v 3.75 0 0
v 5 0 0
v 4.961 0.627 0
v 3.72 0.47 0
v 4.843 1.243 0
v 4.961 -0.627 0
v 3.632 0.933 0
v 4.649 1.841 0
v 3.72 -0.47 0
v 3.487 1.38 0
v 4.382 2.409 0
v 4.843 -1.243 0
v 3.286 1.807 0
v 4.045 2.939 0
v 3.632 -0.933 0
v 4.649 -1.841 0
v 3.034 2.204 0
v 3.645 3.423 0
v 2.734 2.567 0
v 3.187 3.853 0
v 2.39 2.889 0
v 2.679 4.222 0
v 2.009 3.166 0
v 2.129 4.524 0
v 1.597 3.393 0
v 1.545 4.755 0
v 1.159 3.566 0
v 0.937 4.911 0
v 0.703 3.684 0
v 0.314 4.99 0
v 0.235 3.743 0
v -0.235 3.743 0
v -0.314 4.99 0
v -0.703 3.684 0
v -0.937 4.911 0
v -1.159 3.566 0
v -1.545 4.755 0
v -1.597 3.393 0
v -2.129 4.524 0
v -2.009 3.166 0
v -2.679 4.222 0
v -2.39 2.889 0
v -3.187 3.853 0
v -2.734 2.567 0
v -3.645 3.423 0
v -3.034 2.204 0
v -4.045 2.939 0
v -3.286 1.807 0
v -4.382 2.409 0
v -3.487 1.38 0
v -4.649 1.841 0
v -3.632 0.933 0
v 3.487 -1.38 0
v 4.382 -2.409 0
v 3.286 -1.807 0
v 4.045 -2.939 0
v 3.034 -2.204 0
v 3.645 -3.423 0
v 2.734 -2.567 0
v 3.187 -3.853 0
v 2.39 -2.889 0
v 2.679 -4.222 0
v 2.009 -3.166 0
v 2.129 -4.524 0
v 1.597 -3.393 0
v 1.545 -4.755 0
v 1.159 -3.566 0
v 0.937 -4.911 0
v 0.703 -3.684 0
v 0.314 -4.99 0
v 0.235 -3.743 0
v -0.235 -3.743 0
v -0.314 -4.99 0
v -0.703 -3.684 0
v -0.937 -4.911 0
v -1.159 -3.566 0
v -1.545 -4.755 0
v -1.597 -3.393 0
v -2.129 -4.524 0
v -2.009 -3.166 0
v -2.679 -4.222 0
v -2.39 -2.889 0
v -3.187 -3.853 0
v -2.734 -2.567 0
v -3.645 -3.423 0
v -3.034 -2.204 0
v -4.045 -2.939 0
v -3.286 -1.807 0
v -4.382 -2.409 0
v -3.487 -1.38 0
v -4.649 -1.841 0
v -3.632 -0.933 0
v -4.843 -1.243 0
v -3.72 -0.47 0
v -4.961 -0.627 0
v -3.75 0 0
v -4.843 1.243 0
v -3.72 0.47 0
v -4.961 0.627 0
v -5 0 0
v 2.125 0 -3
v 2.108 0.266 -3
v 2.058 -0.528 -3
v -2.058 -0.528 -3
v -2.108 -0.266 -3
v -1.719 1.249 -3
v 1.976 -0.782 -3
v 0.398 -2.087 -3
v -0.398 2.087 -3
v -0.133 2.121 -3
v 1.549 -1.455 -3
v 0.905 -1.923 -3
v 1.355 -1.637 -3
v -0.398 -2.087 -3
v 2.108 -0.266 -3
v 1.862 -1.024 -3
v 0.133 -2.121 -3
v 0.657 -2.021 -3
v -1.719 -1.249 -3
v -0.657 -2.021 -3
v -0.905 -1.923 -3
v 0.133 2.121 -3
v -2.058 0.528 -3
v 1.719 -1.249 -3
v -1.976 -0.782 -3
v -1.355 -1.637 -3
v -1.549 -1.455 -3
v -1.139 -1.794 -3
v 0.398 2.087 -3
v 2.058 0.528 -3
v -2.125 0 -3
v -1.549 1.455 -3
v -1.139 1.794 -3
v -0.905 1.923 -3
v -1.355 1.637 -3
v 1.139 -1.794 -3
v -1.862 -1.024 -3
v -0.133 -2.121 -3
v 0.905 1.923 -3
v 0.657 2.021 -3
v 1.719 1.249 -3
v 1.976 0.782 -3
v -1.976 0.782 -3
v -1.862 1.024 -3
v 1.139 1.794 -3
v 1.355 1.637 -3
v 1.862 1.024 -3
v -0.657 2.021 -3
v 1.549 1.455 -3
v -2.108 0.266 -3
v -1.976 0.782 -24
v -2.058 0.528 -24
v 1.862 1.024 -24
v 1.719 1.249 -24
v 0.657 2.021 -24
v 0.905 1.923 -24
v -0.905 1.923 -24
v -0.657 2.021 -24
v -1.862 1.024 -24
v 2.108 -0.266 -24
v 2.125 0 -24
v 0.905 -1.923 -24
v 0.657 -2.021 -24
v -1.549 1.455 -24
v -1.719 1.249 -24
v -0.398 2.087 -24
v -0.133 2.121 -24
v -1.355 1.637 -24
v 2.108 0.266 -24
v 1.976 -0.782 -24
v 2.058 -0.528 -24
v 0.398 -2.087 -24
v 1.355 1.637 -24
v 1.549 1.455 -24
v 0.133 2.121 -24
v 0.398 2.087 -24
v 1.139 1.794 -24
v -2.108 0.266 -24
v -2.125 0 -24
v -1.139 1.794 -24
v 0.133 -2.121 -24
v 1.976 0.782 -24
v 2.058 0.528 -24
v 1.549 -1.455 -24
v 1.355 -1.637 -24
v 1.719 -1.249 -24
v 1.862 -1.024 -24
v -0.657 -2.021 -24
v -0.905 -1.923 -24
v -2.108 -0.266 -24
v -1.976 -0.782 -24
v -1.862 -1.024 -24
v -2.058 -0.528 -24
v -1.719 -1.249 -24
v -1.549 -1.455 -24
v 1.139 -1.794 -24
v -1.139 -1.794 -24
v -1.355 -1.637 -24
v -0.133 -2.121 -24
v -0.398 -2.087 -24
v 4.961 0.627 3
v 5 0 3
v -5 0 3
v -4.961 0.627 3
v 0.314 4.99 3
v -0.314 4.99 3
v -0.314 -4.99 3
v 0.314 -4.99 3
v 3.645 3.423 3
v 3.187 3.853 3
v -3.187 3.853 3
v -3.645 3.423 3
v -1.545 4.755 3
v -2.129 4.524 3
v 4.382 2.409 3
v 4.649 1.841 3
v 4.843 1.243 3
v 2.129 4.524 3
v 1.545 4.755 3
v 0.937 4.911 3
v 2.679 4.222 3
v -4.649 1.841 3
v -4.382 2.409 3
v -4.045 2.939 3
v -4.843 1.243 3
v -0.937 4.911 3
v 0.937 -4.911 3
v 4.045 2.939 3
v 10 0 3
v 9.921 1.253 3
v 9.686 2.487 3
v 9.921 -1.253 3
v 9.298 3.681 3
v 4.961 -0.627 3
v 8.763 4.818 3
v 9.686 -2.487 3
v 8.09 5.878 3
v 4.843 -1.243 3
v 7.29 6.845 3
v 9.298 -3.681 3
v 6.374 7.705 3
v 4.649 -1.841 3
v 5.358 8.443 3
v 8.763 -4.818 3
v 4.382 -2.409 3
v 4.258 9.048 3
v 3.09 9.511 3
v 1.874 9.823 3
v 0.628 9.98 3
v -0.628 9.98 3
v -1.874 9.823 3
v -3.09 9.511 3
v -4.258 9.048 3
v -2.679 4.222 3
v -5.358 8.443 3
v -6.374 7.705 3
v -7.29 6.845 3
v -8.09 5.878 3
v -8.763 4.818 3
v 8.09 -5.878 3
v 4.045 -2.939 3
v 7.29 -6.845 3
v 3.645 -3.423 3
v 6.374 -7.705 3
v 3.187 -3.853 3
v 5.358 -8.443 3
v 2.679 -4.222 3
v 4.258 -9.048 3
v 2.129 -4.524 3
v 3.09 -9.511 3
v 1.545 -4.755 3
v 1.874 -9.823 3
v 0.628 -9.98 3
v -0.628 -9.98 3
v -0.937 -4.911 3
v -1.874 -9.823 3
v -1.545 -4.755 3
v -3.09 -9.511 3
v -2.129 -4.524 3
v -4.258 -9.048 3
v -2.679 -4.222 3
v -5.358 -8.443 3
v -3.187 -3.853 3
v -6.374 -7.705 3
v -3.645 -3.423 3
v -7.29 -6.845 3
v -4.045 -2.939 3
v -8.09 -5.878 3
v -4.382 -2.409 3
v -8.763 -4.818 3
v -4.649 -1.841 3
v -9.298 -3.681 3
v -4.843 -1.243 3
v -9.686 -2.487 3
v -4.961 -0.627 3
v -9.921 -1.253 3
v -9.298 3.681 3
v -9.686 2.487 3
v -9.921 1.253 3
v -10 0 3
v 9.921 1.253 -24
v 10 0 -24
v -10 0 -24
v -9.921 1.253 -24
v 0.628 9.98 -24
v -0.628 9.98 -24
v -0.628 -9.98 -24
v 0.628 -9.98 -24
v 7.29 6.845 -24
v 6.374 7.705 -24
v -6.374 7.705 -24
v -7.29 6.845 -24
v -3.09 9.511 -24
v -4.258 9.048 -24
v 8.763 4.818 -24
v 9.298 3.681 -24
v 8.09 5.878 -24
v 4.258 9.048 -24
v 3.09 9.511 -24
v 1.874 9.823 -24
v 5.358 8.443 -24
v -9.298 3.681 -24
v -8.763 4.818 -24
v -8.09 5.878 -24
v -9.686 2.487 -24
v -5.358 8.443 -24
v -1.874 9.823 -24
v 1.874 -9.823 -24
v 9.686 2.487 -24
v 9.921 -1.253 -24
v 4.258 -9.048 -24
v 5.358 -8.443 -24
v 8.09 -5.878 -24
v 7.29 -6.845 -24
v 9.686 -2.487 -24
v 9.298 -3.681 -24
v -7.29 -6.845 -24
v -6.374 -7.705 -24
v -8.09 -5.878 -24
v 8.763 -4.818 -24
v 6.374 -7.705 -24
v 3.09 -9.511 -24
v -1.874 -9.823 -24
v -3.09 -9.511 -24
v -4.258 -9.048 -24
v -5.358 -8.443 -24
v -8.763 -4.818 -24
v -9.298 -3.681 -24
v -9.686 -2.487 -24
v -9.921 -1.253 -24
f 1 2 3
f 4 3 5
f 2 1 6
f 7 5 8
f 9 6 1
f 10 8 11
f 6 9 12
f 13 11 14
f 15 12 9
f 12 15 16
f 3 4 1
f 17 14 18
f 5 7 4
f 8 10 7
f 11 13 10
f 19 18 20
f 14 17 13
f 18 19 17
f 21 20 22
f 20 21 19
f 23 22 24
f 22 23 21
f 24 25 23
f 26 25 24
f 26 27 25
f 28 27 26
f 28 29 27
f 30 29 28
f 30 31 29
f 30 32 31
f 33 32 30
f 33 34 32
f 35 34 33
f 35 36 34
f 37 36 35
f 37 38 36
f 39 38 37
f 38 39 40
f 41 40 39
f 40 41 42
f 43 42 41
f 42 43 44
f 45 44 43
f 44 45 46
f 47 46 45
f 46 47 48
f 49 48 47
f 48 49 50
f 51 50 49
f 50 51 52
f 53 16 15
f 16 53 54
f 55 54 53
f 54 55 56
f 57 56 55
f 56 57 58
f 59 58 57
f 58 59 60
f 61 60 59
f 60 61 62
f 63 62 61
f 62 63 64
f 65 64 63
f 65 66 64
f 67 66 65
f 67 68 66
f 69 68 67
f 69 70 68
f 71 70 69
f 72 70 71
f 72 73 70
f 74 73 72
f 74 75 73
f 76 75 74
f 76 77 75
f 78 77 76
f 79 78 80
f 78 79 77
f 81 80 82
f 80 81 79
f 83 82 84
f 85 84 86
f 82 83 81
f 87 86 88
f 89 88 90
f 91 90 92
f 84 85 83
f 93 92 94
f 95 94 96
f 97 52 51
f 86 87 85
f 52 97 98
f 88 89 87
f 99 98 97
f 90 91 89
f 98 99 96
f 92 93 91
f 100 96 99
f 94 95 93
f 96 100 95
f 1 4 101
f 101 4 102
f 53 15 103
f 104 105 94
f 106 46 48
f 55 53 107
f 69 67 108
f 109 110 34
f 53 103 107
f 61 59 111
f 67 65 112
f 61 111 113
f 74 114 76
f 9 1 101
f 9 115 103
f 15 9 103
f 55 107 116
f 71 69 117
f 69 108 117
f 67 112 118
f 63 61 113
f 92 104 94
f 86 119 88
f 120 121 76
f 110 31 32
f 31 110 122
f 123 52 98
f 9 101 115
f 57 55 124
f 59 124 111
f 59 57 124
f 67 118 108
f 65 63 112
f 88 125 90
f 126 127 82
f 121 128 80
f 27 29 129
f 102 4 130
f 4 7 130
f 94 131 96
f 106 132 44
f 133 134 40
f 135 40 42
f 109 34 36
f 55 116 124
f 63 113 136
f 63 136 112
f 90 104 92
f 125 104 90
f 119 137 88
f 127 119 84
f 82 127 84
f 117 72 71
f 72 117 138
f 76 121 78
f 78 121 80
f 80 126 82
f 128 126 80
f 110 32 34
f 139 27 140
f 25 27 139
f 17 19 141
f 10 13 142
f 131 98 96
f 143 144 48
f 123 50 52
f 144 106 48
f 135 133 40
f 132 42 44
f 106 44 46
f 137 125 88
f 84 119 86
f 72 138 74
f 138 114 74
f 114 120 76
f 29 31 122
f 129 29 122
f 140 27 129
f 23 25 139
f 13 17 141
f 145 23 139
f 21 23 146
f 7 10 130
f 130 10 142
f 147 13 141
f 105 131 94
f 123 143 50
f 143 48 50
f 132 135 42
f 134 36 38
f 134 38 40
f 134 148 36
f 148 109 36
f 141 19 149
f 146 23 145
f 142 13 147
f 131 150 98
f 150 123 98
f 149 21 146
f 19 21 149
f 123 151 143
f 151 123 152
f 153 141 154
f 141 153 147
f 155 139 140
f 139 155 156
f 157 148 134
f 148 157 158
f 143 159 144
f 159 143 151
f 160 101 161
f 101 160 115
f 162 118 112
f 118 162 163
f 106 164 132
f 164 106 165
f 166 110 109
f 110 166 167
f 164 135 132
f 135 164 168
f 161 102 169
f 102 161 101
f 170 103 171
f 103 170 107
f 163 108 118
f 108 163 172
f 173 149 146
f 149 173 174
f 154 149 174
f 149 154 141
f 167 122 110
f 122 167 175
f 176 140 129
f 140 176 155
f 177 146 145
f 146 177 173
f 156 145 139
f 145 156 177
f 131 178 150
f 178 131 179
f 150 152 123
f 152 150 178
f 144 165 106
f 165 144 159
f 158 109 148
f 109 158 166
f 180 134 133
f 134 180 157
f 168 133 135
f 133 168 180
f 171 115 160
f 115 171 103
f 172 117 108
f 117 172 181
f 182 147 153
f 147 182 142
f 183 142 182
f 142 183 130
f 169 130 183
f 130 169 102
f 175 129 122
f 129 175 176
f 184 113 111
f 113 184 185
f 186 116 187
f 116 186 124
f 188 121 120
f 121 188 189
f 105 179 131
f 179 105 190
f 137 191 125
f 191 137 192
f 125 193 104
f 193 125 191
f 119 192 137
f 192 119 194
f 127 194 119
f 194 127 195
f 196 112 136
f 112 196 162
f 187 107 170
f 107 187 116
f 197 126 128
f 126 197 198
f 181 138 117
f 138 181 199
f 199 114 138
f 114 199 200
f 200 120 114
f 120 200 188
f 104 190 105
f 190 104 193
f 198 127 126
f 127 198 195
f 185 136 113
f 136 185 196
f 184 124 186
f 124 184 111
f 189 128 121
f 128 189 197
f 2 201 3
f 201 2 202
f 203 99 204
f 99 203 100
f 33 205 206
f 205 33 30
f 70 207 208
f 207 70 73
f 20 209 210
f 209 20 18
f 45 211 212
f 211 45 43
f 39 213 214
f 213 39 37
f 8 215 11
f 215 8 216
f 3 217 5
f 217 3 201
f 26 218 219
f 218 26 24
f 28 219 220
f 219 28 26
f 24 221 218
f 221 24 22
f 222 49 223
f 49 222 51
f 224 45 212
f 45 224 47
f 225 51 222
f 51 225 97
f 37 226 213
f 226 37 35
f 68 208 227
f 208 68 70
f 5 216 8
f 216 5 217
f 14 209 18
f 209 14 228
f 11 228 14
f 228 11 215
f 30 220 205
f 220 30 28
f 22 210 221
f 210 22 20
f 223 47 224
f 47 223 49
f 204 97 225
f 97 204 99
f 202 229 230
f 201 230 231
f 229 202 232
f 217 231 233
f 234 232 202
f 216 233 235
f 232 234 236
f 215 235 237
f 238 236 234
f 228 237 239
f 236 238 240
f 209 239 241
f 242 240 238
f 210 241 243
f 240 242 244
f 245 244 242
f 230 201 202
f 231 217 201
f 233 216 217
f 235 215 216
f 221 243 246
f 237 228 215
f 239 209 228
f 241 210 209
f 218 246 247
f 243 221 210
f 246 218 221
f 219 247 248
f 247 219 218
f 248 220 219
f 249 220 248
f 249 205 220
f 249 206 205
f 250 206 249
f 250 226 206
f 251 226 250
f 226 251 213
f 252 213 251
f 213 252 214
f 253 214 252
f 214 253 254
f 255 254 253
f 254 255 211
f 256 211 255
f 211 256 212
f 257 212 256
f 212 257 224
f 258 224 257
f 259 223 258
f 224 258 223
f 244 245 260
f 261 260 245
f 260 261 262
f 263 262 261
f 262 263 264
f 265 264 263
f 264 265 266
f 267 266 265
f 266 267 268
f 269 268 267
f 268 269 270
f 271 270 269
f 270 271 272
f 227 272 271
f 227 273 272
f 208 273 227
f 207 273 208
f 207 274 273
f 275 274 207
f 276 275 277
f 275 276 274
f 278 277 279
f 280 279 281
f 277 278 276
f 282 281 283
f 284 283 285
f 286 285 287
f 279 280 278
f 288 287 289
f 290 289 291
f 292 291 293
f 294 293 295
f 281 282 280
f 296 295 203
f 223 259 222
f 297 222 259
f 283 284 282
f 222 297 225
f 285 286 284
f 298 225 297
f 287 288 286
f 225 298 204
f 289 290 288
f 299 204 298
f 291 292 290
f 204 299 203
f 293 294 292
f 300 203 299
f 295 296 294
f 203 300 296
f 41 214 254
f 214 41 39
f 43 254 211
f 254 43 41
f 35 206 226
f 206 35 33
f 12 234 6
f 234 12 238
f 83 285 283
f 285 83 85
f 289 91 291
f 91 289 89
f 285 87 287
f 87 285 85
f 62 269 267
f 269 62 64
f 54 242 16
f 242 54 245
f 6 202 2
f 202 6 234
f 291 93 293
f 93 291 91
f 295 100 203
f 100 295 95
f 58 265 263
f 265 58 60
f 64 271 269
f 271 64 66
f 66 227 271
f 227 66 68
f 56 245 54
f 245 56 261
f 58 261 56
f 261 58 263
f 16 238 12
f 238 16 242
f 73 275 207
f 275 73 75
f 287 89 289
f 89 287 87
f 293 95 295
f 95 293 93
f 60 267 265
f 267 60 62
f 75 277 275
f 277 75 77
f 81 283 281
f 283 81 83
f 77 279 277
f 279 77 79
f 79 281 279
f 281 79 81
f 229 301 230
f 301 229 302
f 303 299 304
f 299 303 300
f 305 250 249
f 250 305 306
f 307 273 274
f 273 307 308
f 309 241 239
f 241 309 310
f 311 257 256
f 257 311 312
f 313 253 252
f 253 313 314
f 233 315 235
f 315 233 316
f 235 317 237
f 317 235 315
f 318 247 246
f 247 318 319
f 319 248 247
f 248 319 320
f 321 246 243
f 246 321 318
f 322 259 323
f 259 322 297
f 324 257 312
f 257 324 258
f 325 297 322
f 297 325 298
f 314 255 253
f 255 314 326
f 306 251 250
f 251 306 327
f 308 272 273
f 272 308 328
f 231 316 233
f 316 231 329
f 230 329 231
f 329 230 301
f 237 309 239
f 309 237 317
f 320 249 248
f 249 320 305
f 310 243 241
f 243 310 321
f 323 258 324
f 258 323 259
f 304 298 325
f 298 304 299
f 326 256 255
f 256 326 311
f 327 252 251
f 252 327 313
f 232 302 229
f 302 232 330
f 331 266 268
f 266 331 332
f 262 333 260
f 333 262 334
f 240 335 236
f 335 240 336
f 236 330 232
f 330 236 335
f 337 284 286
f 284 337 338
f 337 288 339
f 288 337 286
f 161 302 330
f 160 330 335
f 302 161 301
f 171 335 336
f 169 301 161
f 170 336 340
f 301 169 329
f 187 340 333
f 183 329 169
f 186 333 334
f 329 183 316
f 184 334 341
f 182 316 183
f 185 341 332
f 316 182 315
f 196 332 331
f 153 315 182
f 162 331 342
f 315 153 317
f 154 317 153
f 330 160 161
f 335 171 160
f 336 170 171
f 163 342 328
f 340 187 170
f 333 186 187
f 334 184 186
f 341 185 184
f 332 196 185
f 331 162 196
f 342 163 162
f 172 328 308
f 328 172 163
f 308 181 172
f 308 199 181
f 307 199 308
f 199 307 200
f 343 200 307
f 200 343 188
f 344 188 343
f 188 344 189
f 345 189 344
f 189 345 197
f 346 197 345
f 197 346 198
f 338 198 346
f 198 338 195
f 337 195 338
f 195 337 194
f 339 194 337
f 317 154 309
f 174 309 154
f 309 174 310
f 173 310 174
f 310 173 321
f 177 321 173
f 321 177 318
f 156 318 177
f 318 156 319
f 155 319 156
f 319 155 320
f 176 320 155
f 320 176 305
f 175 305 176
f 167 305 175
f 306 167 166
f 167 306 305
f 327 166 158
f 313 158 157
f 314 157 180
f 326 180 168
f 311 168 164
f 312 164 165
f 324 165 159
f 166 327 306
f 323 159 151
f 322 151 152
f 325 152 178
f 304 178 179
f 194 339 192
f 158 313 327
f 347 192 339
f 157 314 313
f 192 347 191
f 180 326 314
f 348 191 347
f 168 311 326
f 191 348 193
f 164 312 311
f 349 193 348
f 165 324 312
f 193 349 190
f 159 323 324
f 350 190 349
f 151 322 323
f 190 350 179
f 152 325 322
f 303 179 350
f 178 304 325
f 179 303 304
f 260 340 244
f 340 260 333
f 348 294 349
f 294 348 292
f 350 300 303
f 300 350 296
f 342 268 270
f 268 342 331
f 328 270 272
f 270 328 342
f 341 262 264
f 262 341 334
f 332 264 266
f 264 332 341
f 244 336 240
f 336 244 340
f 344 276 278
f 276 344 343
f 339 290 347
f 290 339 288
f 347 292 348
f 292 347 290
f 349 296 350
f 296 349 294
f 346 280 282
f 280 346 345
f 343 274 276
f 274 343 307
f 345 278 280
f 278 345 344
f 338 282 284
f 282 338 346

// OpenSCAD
$fn = 50;


difference() {
	union() {
		translate(v = [0, 0, -24.0000000000]) {
			cylinder(h = 27, r = 10.0000000000);
		}
	}
	union() {
		translate(v = [0, 0, 0]) {
			rotate(a = [0, 0, 0]) {
				difference() {
					union() {
						translate(v = [0, 0, -27.0000000000]) {
							cylinder(h = 27, r = 2.0000000000);
						}
						translate(v = [0, 0, -3]) {
							cylinder(h = 3, r1 = 2.1250000000, r2 = 3.7500000000);
						}
						translate(v = [0, 0, -27.0000000000]) {
							cylinder(h = 27, r = 2.1250000000);
						}
						translate(v = [0, 0, -27.0000000000]) {
							cylinder(h = 27, r = 2.0000000000);
						}
					}
					union();
				}
			}
		}
		#cylinder(h = 3, r = 5.0000000000);
	}
}
